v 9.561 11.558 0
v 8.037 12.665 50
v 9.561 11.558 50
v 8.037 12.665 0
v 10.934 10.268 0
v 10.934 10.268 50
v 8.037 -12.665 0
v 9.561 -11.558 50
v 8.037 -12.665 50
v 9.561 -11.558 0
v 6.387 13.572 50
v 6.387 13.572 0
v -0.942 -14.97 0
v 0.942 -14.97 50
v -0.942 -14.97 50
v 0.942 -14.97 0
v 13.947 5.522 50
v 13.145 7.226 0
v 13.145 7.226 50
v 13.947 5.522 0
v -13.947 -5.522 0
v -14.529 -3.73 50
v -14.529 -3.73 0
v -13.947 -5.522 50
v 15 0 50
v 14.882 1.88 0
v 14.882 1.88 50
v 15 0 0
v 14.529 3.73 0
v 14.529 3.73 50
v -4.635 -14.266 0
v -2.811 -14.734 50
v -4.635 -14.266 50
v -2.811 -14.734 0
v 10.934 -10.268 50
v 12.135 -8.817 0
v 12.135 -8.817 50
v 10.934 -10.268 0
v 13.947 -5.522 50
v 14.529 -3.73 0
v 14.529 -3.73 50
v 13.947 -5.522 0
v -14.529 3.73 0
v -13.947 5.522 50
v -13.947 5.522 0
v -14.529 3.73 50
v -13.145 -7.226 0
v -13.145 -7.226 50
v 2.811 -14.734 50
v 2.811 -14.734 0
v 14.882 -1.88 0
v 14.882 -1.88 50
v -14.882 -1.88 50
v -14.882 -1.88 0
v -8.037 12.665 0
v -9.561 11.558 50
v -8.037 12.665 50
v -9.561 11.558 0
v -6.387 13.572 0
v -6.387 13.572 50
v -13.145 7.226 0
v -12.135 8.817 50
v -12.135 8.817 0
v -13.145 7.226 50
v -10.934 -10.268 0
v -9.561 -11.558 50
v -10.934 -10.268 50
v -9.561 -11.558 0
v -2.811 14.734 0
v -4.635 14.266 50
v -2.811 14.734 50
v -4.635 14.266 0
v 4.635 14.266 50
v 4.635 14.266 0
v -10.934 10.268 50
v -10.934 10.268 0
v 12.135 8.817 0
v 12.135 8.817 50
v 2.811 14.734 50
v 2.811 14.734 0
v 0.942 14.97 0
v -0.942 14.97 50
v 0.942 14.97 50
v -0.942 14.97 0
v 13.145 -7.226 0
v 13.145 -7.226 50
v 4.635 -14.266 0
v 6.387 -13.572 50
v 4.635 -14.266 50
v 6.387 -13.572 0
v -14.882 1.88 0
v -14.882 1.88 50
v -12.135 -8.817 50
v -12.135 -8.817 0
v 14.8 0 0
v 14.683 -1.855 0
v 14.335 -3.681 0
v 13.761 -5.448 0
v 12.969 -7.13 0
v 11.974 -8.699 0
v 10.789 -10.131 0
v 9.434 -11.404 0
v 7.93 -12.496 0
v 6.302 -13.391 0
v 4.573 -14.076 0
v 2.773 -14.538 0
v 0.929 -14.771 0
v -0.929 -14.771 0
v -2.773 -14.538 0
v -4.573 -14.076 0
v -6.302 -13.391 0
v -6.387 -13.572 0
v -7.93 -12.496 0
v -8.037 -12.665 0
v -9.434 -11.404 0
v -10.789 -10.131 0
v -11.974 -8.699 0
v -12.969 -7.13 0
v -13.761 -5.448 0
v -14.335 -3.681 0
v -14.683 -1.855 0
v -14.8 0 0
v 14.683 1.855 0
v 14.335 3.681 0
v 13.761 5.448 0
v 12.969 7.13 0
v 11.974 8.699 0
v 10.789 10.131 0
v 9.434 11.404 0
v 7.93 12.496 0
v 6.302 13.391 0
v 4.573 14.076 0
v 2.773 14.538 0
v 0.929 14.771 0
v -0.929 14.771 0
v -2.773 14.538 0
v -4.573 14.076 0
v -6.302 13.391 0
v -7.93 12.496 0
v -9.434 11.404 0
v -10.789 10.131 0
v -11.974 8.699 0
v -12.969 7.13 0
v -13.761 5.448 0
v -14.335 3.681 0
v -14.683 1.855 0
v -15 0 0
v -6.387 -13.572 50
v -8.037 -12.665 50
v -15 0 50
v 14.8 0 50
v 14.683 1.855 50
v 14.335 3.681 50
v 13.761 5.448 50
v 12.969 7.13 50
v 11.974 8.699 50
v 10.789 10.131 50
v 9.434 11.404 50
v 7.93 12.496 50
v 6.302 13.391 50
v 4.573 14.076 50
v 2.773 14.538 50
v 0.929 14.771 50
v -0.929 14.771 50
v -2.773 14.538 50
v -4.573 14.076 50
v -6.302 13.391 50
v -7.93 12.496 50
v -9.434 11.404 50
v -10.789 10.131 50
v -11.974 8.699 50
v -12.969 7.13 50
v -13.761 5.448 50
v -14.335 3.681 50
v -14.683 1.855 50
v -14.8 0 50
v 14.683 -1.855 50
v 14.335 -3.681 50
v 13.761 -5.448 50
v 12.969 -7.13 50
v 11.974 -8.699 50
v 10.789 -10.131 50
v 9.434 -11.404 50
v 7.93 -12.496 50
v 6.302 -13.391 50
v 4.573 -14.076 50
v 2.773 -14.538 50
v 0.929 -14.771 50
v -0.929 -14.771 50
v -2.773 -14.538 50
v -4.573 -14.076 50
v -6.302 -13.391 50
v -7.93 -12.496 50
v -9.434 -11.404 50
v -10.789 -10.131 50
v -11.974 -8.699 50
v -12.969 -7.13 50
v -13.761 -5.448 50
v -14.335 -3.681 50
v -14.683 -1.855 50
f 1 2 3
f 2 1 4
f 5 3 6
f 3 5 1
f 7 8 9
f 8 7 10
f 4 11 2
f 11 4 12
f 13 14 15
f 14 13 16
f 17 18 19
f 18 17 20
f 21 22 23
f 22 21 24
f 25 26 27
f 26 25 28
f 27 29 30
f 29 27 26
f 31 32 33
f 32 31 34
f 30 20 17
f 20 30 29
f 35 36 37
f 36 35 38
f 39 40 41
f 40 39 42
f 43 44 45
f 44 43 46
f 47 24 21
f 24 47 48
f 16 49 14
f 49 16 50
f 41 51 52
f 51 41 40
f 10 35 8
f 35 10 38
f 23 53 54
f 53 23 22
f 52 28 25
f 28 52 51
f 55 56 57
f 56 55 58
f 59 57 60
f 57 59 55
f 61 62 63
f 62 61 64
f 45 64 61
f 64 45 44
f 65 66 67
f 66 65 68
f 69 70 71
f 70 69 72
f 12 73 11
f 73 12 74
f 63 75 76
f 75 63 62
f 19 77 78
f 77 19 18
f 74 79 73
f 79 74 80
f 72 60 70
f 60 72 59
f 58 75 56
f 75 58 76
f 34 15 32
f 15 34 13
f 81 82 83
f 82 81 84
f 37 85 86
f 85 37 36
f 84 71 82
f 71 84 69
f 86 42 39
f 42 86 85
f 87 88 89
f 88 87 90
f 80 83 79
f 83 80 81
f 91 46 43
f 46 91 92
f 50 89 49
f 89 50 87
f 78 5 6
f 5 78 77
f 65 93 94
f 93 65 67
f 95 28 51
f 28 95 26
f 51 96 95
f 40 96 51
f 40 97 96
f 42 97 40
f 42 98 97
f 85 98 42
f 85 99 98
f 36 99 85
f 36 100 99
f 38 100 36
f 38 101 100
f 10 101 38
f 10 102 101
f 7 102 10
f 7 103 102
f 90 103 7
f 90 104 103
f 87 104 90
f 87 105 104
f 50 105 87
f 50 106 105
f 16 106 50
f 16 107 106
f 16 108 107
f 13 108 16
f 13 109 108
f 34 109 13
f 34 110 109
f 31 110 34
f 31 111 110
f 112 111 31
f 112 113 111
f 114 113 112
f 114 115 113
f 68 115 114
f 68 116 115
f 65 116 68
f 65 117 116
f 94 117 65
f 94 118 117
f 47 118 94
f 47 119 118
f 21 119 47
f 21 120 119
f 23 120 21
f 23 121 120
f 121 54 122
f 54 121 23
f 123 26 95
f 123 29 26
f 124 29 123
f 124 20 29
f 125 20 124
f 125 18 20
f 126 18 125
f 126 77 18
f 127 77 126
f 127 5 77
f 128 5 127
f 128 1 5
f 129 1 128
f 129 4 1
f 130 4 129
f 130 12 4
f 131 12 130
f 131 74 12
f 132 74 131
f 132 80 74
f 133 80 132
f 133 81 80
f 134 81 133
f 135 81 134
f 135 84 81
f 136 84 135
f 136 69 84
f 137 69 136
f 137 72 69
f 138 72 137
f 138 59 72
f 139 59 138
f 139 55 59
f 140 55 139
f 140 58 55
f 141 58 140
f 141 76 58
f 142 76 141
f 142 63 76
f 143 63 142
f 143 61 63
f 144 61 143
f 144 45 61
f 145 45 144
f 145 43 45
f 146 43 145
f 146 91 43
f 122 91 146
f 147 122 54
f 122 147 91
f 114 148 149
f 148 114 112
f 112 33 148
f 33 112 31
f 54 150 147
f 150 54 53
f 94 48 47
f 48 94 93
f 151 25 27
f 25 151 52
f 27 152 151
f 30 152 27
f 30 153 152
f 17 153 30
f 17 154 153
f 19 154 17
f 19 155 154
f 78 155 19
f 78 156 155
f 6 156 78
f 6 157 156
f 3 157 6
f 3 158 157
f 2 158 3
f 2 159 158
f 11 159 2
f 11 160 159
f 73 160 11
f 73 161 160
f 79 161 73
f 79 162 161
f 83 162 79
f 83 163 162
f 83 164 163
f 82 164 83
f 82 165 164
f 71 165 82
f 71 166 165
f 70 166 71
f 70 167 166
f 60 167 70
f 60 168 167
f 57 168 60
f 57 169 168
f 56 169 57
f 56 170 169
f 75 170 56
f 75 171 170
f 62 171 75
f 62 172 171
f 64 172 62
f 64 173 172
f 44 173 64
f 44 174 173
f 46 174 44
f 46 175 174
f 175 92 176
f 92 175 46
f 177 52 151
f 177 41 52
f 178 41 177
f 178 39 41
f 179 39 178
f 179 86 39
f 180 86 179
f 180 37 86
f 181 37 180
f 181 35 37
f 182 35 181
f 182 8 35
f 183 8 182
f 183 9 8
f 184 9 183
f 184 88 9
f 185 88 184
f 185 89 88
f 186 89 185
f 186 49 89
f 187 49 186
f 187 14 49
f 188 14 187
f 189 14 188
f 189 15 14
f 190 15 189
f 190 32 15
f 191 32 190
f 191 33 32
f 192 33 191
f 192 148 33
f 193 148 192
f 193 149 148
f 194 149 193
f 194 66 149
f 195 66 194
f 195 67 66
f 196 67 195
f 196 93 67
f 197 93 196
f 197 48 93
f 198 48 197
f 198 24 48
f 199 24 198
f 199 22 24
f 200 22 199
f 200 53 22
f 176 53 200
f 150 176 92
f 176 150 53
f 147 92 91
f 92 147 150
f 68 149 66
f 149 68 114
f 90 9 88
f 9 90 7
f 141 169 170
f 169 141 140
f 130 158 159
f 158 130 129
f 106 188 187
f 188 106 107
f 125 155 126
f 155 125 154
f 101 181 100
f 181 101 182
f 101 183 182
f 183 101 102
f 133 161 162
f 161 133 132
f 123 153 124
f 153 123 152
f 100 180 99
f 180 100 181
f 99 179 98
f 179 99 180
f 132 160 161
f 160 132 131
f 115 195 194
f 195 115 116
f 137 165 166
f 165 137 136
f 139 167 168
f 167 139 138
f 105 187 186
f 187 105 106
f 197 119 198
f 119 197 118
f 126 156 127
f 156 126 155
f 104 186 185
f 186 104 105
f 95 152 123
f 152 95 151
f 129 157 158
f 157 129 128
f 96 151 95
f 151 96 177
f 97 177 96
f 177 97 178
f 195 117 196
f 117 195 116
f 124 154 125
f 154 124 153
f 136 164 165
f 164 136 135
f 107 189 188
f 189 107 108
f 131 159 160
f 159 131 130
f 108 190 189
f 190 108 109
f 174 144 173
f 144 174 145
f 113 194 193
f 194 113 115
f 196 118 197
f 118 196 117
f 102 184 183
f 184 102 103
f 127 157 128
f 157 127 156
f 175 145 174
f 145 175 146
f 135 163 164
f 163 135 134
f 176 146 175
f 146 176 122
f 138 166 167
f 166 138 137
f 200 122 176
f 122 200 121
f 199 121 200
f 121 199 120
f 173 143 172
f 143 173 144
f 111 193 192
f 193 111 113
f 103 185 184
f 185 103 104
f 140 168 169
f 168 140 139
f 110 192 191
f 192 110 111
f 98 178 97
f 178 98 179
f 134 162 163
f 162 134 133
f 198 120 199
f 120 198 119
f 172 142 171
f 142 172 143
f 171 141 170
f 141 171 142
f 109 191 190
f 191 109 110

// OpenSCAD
$fn=50;
difference() {
    cylinder(50,d=30);
    cylinder(50,d=30-0.4);
}
